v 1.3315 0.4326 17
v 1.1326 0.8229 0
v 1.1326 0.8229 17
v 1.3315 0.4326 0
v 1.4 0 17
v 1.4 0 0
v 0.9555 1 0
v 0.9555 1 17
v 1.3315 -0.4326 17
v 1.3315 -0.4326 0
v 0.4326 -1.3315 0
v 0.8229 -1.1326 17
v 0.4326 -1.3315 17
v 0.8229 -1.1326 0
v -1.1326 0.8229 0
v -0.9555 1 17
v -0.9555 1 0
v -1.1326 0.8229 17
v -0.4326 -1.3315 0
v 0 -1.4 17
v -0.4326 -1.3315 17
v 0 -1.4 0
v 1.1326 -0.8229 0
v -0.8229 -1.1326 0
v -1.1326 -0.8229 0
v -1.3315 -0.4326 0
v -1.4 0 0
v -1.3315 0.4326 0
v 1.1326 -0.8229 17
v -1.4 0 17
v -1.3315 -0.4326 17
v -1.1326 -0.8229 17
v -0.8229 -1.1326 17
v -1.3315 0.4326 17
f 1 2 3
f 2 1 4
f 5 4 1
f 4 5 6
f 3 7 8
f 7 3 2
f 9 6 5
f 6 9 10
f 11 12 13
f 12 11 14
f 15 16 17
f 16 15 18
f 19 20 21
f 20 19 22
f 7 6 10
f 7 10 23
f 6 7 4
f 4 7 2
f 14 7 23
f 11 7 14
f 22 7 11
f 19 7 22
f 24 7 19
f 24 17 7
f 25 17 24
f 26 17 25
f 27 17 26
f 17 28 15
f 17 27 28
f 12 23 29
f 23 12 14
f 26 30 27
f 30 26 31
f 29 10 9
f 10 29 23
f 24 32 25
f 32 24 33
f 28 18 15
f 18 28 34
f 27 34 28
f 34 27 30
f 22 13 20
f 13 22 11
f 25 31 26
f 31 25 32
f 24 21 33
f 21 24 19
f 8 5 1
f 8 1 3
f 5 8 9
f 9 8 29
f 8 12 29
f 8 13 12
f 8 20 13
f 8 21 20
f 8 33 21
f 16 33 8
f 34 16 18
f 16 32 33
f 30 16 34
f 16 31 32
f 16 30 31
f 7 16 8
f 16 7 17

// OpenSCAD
/* Copyright 2021 Alex Volkov <alex@flamy.ca>
 * License: Attribution-ShareAlike 4.0 International (CC BY-SA)
 * https://creativecommons.org/licenses/by-sa/4.0/
 */
cube_dim = 5;
rod_h = 17;
difference(){
    cylinder(d=2.8, h=rod_h, $fn=20);
    translate([-cube_dim/2, 1,0])
        cube([cube_dim, cube_dim, rod_h]);
}
